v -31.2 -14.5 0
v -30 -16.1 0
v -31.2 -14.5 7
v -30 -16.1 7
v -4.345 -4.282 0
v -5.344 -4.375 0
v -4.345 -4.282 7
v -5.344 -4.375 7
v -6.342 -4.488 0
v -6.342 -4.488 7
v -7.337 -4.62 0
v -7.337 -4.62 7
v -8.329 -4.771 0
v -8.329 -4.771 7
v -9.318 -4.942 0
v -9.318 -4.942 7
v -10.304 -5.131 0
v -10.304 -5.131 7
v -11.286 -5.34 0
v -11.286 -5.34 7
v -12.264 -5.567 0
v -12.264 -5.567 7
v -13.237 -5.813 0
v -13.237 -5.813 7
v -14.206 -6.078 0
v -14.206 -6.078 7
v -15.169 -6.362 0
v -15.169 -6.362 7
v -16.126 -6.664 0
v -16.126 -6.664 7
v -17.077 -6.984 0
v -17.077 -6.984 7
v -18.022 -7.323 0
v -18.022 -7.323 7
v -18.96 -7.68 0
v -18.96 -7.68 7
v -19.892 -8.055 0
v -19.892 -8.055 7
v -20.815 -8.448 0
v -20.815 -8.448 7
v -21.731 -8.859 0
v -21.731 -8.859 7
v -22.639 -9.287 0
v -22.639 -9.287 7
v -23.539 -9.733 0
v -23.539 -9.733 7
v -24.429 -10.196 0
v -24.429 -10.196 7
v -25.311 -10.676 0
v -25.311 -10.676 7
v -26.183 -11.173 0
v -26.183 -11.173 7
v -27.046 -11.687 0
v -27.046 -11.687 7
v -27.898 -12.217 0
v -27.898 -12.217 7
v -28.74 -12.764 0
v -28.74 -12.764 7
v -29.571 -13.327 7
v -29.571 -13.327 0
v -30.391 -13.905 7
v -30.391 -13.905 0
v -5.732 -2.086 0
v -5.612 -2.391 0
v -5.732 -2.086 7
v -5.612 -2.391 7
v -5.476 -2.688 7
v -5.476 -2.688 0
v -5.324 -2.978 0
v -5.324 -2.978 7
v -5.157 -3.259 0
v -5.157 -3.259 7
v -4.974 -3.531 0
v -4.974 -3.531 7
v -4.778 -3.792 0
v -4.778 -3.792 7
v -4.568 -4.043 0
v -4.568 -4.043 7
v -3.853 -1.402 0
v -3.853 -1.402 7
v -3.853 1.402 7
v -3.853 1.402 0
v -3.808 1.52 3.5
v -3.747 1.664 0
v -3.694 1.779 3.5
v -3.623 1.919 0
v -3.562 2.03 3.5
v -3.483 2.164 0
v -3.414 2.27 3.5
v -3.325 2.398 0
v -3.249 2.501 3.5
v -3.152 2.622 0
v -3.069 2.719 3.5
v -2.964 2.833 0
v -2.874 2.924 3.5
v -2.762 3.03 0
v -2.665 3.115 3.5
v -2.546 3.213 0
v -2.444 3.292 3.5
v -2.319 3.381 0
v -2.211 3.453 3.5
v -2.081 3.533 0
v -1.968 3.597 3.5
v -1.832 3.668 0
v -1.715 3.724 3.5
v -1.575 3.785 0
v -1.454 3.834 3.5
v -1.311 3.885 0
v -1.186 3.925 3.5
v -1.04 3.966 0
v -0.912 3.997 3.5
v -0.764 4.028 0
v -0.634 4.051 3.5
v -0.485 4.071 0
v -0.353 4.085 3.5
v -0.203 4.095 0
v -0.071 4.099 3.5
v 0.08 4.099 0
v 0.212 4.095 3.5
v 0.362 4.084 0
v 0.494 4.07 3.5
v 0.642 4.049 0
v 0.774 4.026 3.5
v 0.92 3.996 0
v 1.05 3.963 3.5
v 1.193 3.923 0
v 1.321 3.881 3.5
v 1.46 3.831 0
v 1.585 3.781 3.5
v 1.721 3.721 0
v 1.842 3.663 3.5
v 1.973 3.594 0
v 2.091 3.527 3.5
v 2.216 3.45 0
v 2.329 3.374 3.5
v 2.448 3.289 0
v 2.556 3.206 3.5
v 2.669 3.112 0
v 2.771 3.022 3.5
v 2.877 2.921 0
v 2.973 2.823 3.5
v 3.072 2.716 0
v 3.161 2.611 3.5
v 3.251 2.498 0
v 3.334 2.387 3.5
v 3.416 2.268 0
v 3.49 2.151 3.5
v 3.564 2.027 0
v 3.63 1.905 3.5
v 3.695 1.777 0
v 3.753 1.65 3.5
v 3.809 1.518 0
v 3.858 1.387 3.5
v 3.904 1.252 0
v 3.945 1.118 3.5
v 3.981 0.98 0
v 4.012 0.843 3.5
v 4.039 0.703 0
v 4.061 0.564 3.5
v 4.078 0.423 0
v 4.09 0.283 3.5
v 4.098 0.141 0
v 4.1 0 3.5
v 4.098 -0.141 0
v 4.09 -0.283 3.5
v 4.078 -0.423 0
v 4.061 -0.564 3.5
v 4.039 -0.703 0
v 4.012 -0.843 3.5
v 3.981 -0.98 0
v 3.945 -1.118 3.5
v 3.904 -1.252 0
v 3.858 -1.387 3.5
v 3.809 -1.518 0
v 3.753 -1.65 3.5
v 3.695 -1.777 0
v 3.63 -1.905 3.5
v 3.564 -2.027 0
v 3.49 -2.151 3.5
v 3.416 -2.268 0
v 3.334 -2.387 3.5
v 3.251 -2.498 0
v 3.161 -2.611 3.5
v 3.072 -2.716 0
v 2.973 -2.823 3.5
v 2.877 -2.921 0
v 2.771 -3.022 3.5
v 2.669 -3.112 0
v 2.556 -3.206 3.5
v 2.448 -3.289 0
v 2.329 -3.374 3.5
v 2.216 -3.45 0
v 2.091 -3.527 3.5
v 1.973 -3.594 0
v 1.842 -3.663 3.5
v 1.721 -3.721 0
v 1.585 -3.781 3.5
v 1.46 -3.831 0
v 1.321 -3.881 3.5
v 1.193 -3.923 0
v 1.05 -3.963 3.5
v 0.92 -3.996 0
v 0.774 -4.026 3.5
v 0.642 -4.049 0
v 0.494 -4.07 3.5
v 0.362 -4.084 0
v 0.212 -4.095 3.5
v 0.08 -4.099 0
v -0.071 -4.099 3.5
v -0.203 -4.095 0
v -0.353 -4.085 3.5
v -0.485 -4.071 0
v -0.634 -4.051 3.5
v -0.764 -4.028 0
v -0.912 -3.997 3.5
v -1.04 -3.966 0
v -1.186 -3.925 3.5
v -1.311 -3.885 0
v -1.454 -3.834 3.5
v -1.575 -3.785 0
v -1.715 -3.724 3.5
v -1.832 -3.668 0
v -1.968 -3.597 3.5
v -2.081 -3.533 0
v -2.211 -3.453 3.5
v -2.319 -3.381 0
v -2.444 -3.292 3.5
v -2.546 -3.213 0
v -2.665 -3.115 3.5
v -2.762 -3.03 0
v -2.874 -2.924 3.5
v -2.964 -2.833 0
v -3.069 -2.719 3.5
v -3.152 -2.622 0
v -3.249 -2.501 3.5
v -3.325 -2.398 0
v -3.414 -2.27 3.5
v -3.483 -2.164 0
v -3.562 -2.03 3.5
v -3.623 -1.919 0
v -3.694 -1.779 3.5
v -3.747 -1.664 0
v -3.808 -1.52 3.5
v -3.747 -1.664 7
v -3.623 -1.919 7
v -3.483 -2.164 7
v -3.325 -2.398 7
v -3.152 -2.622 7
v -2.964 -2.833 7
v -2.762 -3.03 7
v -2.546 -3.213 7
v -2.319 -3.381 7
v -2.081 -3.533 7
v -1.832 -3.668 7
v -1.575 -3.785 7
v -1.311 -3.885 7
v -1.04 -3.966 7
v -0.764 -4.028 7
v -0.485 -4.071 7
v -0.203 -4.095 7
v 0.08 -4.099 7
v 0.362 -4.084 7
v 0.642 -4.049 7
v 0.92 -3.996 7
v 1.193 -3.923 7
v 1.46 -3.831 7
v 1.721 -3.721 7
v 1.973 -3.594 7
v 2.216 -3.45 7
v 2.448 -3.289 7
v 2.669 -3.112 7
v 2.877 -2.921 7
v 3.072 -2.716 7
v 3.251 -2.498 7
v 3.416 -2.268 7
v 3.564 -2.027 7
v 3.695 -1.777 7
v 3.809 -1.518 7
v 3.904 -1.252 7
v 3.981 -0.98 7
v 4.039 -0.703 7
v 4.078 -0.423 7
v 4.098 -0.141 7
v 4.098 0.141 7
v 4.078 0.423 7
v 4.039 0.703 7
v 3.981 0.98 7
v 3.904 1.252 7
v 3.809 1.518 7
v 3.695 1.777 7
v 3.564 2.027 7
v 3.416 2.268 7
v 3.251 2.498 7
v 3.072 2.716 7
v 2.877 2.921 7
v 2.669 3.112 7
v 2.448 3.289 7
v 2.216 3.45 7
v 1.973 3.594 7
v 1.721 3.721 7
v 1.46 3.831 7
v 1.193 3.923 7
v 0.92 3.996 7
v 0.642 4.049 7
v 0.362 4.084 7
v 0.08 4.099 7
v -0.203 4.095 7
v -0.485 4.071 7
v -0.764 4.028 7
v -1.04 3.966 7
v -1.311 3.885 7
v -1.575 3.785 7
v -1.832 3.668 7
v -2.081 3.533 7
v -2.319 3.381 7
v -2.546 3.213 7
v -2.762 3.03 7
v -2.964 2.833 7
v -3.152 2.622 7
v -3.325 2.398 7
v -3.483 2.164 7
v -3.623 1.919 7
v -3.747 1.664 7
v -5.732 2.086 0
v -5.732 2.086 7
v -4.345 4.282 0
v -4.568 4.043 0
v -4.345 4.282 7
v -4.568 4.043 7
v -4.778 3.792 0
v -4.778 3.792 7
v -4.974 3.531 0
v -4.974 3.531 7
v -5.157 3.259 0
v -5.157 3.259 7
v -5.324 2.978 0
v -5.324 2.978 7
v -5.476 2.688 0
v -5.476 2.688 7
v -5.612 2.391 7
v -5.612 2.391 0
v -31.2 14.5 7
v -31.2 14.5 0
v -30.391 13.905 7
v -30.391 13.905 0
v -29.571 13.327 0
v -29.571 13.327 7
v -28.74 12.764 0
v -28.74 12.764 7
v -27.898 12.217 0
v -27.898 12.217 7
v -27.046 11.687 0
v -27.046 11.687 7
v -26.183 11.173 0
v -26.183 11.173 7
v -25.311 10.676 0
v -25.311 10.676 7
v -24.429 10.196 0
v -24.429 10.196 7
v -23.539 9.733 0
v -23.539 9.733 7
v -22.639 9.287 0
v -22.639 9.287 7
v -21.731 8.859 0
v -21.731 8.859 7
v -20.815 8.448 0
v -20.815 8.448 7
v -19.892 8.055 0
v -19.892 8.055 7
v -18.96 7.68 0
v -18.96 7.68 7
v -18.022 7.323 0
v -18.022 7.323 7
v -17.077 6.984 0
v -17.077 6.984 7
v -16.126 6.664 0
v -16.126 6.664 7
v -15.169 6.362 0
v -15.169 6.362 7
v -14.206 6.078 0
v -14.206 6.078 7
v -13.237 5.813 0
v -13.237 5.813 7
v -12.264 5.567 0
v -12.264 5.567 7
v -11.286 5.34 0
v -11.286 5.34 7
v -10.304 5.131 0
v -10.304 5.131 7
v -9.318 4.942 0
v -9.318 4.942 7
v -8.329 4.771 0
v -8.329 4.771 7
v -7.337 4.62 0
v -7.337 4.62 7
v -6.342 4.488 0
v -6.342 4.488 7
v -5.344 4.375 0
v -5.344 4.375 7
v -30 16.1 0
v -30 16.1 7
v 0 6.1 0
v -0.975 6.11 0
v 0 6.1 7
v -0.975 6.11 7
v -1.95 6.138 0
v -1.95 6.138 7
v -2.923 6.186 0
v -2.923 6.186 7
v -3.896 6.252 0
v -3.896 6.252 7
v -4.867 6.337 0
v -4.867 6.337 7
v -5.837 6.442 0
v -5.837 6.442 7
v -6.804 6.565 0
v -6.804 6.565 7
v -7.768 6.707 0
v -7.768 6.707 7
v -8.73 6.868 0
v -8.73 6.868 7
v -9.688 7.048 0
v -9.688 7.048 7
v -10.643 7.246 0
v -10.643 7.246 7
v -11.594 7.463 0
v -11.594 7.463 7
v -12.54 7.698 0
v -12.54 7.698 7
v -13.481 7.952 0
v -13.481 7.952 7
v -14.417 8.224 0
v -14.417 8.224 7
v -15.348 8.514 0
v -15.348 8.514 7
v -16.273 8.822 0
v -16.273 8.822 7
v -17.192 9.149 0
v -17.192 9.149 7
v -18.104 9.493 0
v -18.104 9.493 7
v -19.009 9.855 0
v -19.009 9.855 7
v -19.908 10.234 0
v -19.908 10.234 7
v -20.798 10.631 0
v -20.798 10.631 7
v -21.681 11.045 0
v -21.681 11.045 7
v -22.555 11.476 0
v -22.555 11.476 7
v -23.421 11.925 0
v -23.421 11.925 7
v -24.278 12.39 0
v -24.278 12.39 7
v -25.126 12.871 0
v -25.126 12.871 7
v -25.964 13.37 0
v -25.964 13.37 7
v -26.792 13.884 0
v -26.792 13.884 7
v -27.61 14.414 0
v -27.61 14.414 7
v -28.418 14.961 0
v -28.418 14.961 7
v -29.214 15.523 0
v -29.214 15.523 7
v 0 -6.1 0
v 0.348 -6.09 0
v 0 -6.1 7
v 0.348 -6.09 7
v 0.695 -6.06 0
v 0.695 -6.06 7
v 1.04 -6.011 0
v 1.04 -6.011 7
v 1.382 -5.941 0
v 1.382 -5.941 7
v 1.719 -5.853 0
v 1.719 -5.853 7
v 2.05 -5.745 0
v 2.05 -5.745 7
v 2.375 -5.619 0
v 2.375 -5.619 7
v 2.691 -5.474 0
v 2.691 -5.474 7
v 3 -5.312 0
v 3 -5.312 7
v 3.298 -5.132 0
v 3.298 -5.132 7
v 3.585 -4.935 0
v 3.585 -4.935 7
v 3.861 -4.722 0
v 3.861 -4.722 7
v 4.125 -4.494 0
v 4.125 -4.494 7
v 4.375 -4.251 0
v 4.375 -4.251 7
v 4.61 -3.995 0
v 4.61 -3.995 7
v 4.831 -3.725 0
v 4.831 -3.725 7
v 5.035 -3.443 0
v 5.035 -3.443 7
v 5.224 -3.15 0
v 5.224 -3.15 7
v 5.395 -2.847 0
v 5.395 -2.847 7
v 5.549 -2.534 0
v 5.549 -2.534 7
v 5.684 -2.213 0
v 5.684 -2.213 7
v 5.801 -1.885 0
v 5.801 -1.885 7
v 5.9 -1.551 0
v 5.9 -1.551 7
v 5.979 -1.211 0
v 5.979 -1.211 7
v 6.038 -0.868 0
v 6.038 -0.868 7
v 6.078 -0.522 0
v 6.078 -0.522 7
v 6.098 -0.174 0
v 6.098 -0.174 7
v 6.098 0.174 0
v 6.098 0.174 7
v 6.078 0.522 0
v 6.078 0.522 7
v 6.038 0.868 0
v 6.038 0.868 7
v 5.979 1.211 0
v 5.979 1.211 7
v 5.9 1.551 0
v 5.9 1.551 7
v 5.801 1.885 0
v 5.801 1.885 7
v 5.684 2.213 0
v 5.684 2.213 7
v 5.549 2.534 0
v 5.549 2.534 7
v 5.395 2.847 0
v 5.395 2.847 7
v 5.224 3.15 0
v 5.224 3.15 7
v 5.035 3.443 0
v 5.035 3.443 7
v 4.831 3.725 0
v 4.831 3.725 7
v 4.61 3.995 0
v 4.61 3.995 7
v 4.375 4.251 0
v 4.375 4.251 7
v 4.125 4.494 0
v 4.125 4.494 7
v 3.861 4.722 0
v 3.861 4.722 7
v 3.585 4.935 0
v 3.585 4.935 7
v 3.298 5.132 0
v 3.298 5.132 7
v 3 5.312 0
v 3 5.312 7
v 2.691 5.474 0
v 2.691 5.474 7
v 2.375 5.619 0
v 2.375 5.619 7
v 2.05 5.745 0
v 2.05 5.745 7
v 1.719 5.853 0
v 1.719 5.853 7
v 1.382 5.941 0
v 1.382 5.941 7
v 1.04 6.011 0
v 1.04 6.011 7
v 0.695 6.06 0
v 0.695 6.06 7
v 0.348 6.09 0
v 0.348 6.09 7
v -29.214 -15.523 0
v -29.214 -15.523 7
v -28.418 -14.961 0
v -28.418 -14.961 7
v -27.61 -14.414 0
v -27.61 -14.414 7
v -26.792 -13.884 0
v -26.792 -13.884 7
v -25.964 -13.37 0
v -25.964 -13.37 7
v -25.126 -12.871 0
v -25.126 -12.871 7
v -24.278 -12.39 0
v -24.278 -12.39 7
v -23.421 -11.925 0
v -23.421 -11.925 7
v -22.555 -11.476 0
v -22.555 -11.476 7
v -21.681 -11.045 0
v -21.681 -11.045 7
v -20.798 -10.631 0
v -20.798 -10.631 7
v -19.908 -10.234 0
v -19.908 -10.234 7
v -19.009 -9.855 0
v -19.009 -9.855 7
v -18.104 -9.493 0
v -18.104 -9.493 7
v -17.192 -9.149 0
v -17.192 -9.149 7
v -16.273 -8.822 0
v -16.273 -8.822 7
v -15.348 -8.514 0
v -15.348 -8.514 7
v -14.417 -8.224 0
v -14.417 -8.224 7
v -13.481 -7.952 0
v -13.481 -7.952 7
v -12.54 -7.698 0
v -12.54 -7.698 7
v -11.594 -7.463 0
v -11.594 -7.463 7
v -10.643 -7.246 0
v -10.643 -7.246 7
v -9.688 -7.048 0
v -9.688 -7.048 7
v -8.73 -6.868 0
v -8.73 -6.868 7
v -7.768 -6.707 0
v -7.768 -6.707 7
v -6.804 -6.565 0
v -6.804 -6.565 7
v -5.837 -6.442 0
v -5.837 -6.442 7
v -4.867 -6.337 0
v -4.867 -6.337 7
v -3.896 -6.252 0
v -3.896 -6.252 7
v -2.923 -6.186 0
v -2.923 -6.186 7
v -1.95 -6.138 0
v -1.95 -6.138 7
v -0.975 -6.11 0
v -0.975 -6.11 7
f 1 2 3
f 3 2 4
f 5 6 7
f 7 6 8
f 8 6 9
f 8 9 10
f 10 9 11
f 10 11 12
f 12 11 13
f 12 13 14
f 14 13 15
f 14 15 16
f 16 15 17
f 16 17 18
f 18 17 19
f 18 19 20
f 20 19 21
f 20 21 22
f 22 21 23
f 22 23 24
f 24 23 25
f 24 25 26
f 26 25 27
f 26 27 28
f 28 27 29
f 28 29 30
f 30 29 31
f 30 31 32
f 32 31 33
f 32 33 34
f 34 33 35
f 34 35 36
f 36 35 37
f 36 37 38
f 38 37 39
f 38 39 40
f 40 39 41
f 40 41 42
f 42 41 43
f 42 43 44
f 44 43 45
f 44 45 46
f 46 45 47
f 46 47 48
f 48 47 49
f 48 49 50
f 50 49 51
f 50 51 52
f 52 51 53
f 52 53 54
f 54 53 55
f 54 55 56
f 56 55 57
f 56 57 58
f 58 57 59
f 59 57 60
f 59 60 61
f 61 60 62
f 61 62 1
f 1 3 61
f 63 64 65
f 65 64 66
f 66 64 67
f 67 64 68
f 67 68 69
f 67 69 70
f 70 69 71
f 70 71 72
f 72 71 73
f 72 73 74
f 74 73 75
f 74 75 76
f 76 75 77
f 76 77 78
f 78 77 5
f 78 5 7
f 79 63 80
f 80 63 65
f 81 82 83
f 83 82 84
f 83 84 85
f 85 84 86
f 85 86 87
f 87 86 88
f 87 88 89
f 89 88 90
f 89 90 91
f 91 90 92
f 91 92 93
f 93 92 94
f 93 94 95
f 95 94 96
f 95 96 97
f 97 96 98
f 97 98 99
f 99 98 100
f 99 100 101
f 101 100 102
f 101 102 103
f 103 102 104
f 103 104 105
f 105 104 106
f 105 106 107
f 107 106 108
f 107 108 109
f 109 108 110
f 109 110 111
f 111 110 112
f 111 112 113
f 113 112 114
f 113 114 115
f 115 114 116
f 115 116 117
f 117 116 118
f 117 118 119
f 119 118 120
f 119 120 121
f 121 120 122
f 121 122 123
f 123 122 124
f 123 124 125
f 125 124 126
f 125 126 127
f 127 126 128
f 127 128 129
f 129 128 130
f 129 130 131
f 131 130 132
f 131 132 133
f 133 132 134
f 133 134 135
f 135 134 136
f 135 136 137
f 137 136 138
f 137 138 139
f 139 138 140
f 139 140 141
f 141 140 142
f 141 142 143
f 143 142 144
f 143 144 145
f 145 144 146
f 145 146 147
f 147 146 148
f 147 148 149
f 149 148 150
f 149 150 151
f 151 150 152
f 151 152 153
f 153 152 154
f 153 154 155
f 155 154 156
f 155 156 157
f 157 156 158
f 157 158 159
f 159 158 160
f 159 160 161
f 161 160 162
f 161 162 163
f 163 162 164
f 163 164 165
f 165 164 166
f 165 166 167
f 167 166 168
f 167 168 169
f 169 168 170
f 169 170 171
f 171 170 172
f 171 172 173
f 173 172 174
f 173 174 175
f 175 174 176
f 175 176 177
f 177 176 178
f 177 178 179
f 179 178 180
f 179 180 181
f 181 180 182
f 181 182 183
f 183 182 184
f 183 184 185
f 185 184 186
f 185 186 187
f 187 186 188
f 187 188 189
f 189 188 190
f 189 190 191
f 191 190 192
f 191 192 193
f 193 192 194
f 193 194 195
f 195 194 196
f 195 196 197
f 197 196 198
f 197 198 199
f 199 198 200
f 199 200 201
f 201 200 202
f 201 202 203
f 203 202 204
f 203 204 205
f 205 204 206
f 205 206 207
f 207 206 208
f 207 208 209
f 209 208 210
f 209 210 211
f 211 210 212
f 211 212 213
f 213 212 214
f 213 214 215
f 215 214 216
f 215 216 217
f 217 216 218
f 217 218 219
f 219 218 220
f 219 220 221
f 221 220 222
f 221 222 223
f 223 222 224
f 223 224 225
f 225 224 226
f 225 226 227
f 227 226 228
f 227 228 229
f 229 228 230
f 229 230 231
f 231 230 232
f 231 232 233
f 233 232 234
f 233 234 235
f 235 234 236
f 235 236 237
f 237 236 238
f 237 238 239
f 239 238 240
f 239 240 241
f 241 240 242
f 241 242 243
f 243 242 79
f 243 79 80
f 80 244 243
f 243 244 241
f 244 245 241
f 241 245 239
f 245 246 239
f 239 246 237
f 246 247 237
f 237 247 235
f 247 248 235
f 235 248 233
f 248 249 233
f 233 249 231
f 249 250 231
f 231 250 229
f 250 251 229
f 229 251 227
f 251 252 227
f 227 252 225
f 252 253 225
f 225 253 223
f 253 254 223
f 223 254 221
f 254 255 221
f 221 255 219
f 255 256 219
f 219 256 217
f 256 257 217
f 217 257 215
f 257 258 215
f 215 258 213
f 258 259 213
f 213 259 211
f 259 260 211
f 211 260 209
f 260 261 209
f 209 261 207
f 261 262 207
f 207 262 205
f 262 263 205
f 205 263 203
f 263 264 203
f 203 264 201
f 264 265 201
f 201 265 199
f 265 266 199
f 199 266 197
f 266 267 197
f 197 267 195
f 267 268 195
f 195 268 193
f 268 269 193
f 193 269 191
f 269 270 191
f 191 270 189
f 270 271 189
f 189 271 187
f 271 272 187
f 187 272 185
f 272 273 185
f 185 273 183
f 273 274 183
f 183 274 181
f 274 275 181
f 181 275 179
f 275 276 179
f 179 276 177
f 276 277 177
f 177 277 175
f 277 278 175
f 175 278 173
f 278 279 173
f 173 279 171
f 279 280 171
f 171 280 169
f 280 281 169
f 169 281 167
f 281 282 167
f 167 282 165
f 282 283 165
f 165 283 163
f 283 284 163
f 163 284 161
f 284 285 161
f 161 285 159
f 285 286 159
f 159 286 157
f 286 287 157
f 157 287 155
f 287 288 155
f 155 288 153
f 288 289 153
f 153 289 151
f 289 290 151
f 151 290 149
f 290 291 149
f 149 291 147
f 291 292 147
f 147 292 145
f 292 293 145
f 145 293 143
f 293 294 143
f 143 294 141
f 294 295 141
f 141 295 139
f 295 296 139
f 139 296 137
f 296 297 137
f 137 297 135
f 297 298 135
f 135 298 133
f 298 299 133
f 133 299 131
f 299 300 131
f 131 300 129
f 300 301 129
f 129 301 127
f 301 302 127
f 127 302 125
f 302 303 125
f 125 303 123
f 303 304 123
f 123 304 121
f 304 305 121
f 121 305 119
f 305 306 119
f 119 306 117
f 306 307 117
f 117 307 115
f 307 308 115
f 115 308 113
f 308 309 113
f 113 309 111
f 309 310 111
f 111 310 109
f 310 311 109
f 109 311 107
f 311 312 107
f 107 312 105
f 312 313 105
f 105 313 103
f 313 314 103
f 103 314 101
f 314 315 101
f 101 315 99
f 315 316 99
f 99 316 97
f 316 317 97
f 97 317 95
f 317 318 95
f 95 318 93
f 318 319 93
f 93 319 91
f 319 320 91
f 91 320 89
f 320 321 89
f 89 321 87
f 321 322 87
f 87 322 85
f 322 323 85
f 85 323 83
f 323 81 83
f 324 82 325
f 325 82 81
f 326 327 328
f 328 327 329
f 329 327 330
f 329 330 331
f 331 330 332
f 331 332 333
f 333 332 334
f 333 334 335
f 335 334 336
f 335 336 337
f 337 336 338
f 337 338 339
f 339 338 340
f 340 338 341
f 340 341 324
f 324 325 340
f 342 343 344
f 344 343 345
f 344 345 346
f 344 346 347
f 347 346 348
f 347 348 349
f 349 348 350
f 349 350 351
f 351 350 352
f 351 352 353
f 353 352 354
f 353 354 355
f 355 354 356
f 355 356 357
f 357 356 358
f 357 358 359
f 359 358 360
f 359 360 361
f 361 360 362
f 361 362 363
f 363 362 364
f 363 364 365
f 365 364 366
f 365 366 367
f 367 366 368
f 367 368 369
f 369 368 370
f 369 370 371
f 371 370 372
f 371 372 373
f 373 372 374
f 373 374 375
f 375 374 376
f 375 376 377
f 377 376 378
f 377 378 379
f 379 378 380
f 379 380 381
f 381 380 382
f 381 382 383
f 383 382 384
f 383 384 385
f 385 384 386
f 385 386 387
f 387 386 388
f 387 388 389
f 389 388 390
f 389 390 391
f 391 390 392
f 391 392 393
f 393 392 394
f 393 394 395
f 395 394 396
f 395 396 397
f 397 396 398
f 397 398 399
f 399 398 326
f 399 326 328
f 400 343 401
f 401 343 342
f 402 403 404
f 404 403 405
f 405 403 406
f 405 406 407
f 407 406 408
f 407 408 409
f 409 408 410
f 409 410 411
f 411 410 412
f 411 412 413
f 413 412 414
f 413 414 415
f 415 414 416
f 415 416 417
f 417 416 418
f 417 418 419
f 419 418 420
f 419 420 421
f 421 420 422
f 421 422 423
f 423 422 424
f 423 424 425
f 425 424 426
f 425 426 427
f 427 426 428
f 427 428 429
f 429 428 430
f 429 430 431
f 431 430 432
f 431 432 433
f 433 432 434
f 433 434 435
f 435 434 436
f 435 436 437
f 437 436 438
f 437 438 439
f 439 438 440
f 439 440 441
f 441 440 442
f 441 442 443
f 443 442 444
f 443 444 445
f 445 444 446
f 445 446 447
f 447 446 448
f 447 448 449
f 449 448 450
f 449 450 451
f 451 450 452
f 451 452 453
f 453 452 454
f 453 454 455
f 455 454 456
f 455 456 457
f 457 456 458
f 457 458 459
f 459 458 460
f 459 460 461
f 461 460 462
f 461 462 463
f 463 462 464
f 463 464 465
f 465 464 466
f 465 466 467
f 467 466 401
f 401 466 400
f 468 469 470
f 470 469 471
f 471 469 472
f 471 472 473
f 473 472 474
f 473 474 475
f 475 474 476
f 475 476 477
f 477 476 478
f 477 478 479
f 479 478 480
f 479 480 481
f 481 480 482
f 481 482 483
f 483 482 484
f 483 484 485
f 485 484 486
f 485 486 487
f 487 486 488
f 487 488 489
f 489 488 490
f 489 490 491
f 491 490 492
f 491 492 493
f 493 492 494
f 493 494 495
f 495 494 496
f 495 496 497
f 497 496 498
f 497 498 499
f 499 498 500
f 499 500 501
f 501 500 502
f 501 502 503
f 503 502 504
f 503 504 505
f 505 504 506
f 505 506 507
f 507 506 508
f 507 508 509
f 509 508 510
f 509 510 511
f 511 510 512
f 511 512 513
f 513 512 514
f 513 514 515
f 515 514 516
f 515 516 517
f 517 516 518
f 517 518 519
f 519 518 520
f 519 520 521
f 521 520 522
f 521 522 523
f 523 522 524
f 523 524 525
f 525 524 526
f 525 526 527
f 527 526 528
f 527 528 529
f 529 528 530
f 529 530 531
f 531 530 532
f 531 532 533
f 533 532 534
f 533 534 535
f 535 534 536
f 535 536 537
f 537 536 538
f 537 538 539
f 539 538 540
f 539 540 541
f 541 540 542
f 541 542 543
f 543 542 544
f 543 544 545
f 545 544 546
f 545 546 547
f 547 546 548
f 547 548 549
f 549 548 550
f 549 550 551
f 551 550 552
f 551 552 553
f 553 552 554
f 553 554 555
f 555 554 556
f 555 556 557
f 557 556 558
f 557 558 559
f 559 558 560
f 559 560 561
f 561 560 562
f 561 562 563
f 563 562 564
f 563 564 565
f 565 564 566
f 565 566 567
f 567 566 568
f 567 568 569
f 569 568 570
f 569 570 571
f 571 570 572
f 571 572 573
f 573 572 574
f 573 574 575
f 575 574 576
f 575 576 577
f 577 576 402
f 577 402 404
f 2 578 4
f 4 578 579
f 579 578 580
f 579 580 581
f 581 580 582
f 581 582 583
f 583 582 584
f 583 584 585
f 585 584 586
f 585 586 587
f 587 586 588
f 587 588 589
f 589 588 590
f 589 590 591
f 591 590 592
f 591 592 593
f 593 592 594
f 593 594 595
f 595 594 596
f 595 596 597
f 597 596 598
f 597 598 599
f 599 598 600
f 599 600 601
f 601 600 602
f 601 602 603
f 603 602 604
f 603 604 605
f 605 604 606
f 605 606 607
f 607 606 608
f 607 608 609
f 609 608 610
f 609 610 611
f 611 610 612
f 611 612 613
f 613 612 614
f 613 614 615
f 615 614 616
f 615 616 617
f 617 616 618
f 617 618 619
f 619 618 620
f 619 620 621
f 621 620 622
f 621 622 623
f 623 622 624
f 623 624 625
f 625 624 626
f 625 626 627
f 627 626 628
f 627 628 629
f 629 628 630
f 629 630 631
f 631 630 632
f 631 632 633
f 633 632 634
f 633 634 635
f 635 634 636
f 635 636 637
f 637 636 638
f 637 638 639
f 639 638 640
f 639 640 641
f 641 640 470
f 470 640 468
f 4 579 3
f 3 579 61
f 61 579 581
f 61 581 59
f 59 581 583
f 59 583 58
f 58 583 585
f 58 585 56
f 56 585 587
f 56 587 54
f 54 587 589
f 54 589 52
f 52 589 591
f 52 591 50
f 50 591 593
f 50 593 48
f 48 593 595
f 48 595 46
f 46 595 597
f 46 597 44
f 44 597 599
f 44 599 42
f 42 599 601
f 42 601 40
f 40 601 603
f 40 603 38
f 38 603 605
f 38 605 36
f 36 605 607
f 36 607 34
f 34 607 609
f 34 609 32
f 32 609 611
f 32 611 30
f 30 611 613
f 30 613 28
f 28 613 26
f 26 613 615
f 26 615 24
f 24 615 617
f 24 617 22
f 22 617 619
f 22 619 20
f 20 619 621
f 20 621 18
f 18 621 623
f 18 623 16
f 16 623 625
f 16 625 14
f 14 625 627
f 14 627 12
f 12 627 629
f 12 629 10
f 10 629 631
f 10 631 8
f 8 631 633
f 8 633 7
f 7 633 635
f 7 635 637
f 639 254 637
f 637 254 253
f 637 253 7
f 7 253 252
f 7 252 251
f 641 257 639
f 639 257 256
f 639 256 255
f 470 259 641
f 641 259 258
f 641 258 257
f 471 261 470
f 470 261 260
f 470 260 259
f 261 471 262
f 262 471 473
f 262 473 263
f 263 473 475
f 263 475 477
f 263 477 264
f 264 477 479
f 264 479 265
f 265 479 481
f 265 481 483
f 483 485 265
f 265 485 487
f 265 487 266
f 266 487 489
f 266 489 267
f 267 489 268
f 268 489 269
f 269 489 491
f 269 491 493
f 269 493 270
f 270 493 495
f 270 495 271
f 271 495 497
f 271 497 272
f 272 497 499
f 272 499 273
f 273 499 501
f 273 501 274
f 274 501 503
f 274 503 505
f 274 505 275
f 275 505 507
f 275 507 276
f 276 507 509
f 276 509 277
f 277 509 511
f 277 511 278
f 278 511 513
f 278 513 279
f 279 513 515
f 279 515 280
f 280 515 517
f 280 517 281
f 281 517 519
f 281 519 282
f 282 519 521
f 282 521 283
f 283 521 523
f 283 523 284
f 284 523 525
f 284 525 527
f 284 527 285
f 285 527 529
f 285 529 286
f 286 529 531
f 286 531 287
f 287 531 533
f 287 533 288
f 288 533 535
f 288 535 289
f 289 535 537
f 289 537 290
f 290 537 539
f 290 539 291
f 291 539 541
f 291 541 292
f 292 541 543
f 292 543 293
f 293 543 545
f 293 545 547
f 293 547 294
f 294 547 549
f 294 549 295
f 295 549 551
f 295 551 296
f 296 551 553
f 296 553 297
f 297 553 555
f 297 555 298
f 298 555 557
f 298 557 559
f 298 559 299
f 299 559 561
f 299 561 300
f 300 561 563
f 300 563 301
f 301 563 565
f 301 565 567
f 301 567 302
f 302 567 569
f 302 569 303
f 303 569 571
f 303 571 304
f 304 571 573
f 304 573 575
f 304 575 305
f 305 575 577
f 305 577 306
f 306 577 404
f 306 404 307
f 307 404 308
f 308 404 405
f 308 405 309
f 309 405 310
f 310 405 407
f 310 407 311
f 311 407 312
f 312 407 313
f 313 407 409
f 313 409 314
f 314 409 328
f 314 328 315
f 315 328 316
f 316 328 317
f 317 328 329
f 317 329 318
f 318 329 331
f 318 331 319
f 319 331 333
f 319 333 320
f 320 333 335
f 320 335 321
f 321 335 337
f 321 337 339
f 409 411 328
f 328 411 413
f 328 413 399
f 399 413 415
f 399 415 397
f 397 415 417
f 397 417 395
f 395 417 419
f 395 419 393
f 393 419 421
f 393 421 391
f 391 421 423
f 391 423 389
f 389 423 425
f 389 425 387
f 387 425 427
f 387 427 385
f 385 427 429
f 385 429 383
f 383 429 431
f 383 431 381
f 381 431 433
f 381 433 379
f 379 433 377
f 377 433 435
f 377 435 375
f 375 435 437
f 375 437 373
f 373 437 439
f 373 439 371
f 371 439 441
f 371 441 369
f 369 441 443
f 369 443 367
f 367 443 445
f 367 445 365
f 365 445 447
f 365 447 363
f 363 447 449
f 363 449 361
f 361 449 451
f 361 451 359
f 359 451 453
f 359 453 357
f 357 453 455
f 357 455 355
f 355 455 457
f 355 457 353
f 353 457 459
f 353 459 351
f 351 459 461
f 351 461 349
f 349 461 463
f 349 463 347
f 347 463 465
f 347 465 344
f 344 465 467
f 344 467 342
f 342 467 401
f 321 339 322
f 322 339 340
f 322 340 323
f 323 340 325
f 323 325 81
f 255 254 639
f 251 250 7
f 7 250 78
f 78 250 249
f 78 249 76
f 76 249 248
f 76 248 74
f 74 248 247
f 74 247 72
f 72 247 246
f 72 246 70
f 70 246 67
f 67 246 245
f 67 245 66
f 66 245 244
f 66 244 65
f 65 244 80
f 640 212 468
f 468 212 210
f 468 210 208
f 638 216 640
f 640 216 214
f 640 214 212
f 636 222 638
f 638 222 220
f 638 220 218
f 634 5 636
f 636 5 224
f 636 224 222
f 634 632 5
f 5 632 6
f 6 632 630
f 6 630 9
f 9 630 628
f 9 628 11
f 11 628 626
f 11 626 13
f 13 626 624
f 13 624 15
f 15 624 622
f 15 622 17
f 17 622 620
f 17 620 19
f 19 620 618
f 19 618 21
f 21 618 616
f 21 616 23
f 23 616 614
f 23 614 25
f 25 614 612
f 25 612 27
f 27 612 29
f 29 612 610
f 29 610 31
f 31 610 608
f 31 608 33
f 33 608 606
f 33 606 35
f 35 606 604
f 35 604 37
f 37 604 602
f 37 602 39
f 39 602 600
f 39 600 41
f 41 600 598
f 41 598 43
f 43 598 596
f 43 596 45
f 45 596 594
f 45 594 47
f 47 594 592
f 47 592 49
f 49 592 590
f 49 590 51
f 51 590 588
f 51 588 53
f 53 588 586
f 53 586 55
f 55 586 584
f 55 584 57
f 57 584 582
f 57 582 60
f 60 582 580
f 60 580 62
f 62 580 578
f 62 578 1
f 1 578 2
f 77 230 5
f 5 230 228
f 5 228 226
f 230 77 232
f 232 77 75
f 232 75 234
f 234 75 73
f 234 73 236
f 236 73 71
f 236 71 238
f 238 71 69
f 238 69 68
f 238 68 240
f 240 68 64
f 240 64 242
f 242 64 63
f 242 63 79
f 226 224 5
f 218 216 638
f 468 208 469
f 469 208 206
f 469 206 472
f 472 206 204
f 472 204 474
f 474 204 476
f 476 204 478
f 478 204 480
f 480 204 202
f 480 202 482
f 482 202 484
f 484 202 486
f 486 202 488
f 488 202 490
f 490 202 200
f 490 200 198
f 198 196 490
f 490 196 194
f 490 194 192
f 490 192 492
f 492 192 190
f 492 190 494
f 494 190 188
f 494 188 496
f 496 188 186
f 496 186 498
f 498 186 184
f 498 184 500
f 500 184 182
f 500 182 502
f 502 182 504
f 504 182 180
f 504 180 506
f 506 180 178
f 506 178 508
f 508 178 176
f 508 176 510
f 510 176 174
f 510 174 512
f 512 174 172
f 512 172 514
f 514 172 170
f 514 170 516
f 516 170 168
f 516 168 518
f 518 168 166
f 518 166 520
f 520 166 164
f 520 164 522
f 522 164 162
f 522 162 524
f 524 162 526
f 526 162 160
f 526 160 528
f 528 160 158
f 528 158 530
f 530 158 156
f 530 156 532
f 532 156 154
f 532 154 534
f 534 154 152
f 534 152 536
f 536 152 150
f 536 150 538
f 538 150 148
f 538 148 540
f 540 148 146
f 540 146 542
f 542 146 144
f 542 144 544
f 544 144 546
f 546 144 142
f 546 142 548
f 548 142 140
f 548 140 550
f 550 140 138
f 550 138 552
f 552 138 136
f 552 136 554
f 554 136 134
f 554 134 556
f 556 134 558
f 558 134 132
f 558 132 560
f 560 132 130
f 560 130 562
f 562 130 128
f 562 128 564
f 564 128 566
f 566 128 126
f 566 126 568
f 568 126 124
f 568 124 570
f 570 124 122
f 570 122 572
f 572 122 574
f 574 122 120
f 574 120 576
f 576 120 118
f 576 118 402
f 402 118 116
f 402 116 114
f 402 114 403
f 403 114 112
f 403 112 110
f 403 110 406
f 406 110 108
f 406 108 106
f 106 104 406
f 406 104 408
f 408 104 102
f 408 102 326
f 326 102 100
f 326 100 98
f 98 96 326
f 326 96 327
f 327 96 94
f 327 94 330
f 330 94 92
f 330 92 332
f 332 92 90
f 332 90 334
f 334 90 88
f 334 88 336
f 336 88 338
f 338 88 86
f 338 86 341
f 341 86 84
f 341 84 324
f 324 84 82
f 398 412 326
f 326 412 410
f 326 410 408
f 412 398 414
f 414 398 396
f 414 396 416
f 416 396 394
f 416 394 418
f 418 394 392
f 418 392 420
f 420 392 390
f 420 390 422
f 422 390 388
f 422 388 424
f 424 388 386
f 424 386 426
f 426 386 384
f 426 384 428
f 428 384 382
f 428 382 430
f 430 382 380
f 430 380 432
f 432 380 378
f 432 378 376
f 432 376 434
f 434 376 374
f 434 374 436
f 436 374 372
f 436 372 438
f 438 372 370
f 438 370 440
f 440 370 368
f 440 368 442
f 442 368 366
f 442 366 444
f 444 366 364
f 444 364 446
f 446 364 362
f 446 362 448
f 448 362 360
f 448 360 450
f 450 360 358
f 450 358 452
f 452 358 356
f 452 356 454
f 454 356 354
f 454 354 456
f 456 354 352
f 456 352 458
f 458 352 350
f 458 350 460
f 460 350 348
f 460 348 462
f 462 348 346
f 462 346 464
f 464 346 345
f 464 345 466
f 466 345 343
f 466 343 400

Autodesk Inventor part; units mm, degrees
ref_plane "YZ Plane" through (0, 0, 0) normal (1, 0, 0) x (0, 1, 0)
ref_plane "XZ Plane" through (0, 0, 0) normal (0, 1, 0) x (-1, 0, 0)
ref_plane "XY Plane" through (0, 0, 0) normal (0, 0, 1) x (1, 0, 0)
sketch "Sketch1" plane through (0, 0, 0) normal (0, 0, 1) x (1, 0, 0)
  circle A0 centre (0, 0) radius 4.1
  circle A1 centre (0, 0) radius 6.1
  arc A2 (-30, 16.1) -> (0, 6.1) centre (0, 56.1) ccw
  line L0 (0, -78.54) -> (0, 78.54) projected
  arc A3 (-31.2, 14.5) -> (0, 4.1) centre (0, 56.1) ccw
  line L1 (-30, 16.1) -> (-31.2, 14.5)
  line L2 (-39.6726, 0) -> (13.7288, 0) projected
  arc A4 (0, -6.1) -> (-30, -16.1) centre (0, -56.1) ccw
  arc A5 (0, -4.1) -> (-31.2, -14.5) centre (0, -56.1) ccw
  line L3 (-30, -16.1) -> (-31.2, -14.5)
  line L4 (-5.7321, 2.0863) -> (-3.8527, 1.4023)
  line L5 (-5.7321, -2.0863) -> (-3.8527, -1.4023)
  point P0 (0, 4.1)
  point P1 (0, -4.1)
  point P2 (0, -6.1)
  point P3 (-3.8527, -1.4023)
  point P4 (-4.3447, -4.2818)
  point P5 (-4.3447, 4.2818)
  dimension "d0" = 8.2
  dimension "d1" = 2
  dimension "d3" = 50
  dimension "d4" = 30
  dimension "d7" = 20
extrude "Extrusion1" add sketch "Sketch1" along normal blind 7 contours L2 A1 L0 A0 | A0 L0 A1 L2 | A3 A1 L0 | A0 L4 A1 A3 | A5 A1 L5 A0 | L0 A1 A5 | A1 A3 L1 A2 | A4 L3 A5 A1
properties part number "8mmClamp"
